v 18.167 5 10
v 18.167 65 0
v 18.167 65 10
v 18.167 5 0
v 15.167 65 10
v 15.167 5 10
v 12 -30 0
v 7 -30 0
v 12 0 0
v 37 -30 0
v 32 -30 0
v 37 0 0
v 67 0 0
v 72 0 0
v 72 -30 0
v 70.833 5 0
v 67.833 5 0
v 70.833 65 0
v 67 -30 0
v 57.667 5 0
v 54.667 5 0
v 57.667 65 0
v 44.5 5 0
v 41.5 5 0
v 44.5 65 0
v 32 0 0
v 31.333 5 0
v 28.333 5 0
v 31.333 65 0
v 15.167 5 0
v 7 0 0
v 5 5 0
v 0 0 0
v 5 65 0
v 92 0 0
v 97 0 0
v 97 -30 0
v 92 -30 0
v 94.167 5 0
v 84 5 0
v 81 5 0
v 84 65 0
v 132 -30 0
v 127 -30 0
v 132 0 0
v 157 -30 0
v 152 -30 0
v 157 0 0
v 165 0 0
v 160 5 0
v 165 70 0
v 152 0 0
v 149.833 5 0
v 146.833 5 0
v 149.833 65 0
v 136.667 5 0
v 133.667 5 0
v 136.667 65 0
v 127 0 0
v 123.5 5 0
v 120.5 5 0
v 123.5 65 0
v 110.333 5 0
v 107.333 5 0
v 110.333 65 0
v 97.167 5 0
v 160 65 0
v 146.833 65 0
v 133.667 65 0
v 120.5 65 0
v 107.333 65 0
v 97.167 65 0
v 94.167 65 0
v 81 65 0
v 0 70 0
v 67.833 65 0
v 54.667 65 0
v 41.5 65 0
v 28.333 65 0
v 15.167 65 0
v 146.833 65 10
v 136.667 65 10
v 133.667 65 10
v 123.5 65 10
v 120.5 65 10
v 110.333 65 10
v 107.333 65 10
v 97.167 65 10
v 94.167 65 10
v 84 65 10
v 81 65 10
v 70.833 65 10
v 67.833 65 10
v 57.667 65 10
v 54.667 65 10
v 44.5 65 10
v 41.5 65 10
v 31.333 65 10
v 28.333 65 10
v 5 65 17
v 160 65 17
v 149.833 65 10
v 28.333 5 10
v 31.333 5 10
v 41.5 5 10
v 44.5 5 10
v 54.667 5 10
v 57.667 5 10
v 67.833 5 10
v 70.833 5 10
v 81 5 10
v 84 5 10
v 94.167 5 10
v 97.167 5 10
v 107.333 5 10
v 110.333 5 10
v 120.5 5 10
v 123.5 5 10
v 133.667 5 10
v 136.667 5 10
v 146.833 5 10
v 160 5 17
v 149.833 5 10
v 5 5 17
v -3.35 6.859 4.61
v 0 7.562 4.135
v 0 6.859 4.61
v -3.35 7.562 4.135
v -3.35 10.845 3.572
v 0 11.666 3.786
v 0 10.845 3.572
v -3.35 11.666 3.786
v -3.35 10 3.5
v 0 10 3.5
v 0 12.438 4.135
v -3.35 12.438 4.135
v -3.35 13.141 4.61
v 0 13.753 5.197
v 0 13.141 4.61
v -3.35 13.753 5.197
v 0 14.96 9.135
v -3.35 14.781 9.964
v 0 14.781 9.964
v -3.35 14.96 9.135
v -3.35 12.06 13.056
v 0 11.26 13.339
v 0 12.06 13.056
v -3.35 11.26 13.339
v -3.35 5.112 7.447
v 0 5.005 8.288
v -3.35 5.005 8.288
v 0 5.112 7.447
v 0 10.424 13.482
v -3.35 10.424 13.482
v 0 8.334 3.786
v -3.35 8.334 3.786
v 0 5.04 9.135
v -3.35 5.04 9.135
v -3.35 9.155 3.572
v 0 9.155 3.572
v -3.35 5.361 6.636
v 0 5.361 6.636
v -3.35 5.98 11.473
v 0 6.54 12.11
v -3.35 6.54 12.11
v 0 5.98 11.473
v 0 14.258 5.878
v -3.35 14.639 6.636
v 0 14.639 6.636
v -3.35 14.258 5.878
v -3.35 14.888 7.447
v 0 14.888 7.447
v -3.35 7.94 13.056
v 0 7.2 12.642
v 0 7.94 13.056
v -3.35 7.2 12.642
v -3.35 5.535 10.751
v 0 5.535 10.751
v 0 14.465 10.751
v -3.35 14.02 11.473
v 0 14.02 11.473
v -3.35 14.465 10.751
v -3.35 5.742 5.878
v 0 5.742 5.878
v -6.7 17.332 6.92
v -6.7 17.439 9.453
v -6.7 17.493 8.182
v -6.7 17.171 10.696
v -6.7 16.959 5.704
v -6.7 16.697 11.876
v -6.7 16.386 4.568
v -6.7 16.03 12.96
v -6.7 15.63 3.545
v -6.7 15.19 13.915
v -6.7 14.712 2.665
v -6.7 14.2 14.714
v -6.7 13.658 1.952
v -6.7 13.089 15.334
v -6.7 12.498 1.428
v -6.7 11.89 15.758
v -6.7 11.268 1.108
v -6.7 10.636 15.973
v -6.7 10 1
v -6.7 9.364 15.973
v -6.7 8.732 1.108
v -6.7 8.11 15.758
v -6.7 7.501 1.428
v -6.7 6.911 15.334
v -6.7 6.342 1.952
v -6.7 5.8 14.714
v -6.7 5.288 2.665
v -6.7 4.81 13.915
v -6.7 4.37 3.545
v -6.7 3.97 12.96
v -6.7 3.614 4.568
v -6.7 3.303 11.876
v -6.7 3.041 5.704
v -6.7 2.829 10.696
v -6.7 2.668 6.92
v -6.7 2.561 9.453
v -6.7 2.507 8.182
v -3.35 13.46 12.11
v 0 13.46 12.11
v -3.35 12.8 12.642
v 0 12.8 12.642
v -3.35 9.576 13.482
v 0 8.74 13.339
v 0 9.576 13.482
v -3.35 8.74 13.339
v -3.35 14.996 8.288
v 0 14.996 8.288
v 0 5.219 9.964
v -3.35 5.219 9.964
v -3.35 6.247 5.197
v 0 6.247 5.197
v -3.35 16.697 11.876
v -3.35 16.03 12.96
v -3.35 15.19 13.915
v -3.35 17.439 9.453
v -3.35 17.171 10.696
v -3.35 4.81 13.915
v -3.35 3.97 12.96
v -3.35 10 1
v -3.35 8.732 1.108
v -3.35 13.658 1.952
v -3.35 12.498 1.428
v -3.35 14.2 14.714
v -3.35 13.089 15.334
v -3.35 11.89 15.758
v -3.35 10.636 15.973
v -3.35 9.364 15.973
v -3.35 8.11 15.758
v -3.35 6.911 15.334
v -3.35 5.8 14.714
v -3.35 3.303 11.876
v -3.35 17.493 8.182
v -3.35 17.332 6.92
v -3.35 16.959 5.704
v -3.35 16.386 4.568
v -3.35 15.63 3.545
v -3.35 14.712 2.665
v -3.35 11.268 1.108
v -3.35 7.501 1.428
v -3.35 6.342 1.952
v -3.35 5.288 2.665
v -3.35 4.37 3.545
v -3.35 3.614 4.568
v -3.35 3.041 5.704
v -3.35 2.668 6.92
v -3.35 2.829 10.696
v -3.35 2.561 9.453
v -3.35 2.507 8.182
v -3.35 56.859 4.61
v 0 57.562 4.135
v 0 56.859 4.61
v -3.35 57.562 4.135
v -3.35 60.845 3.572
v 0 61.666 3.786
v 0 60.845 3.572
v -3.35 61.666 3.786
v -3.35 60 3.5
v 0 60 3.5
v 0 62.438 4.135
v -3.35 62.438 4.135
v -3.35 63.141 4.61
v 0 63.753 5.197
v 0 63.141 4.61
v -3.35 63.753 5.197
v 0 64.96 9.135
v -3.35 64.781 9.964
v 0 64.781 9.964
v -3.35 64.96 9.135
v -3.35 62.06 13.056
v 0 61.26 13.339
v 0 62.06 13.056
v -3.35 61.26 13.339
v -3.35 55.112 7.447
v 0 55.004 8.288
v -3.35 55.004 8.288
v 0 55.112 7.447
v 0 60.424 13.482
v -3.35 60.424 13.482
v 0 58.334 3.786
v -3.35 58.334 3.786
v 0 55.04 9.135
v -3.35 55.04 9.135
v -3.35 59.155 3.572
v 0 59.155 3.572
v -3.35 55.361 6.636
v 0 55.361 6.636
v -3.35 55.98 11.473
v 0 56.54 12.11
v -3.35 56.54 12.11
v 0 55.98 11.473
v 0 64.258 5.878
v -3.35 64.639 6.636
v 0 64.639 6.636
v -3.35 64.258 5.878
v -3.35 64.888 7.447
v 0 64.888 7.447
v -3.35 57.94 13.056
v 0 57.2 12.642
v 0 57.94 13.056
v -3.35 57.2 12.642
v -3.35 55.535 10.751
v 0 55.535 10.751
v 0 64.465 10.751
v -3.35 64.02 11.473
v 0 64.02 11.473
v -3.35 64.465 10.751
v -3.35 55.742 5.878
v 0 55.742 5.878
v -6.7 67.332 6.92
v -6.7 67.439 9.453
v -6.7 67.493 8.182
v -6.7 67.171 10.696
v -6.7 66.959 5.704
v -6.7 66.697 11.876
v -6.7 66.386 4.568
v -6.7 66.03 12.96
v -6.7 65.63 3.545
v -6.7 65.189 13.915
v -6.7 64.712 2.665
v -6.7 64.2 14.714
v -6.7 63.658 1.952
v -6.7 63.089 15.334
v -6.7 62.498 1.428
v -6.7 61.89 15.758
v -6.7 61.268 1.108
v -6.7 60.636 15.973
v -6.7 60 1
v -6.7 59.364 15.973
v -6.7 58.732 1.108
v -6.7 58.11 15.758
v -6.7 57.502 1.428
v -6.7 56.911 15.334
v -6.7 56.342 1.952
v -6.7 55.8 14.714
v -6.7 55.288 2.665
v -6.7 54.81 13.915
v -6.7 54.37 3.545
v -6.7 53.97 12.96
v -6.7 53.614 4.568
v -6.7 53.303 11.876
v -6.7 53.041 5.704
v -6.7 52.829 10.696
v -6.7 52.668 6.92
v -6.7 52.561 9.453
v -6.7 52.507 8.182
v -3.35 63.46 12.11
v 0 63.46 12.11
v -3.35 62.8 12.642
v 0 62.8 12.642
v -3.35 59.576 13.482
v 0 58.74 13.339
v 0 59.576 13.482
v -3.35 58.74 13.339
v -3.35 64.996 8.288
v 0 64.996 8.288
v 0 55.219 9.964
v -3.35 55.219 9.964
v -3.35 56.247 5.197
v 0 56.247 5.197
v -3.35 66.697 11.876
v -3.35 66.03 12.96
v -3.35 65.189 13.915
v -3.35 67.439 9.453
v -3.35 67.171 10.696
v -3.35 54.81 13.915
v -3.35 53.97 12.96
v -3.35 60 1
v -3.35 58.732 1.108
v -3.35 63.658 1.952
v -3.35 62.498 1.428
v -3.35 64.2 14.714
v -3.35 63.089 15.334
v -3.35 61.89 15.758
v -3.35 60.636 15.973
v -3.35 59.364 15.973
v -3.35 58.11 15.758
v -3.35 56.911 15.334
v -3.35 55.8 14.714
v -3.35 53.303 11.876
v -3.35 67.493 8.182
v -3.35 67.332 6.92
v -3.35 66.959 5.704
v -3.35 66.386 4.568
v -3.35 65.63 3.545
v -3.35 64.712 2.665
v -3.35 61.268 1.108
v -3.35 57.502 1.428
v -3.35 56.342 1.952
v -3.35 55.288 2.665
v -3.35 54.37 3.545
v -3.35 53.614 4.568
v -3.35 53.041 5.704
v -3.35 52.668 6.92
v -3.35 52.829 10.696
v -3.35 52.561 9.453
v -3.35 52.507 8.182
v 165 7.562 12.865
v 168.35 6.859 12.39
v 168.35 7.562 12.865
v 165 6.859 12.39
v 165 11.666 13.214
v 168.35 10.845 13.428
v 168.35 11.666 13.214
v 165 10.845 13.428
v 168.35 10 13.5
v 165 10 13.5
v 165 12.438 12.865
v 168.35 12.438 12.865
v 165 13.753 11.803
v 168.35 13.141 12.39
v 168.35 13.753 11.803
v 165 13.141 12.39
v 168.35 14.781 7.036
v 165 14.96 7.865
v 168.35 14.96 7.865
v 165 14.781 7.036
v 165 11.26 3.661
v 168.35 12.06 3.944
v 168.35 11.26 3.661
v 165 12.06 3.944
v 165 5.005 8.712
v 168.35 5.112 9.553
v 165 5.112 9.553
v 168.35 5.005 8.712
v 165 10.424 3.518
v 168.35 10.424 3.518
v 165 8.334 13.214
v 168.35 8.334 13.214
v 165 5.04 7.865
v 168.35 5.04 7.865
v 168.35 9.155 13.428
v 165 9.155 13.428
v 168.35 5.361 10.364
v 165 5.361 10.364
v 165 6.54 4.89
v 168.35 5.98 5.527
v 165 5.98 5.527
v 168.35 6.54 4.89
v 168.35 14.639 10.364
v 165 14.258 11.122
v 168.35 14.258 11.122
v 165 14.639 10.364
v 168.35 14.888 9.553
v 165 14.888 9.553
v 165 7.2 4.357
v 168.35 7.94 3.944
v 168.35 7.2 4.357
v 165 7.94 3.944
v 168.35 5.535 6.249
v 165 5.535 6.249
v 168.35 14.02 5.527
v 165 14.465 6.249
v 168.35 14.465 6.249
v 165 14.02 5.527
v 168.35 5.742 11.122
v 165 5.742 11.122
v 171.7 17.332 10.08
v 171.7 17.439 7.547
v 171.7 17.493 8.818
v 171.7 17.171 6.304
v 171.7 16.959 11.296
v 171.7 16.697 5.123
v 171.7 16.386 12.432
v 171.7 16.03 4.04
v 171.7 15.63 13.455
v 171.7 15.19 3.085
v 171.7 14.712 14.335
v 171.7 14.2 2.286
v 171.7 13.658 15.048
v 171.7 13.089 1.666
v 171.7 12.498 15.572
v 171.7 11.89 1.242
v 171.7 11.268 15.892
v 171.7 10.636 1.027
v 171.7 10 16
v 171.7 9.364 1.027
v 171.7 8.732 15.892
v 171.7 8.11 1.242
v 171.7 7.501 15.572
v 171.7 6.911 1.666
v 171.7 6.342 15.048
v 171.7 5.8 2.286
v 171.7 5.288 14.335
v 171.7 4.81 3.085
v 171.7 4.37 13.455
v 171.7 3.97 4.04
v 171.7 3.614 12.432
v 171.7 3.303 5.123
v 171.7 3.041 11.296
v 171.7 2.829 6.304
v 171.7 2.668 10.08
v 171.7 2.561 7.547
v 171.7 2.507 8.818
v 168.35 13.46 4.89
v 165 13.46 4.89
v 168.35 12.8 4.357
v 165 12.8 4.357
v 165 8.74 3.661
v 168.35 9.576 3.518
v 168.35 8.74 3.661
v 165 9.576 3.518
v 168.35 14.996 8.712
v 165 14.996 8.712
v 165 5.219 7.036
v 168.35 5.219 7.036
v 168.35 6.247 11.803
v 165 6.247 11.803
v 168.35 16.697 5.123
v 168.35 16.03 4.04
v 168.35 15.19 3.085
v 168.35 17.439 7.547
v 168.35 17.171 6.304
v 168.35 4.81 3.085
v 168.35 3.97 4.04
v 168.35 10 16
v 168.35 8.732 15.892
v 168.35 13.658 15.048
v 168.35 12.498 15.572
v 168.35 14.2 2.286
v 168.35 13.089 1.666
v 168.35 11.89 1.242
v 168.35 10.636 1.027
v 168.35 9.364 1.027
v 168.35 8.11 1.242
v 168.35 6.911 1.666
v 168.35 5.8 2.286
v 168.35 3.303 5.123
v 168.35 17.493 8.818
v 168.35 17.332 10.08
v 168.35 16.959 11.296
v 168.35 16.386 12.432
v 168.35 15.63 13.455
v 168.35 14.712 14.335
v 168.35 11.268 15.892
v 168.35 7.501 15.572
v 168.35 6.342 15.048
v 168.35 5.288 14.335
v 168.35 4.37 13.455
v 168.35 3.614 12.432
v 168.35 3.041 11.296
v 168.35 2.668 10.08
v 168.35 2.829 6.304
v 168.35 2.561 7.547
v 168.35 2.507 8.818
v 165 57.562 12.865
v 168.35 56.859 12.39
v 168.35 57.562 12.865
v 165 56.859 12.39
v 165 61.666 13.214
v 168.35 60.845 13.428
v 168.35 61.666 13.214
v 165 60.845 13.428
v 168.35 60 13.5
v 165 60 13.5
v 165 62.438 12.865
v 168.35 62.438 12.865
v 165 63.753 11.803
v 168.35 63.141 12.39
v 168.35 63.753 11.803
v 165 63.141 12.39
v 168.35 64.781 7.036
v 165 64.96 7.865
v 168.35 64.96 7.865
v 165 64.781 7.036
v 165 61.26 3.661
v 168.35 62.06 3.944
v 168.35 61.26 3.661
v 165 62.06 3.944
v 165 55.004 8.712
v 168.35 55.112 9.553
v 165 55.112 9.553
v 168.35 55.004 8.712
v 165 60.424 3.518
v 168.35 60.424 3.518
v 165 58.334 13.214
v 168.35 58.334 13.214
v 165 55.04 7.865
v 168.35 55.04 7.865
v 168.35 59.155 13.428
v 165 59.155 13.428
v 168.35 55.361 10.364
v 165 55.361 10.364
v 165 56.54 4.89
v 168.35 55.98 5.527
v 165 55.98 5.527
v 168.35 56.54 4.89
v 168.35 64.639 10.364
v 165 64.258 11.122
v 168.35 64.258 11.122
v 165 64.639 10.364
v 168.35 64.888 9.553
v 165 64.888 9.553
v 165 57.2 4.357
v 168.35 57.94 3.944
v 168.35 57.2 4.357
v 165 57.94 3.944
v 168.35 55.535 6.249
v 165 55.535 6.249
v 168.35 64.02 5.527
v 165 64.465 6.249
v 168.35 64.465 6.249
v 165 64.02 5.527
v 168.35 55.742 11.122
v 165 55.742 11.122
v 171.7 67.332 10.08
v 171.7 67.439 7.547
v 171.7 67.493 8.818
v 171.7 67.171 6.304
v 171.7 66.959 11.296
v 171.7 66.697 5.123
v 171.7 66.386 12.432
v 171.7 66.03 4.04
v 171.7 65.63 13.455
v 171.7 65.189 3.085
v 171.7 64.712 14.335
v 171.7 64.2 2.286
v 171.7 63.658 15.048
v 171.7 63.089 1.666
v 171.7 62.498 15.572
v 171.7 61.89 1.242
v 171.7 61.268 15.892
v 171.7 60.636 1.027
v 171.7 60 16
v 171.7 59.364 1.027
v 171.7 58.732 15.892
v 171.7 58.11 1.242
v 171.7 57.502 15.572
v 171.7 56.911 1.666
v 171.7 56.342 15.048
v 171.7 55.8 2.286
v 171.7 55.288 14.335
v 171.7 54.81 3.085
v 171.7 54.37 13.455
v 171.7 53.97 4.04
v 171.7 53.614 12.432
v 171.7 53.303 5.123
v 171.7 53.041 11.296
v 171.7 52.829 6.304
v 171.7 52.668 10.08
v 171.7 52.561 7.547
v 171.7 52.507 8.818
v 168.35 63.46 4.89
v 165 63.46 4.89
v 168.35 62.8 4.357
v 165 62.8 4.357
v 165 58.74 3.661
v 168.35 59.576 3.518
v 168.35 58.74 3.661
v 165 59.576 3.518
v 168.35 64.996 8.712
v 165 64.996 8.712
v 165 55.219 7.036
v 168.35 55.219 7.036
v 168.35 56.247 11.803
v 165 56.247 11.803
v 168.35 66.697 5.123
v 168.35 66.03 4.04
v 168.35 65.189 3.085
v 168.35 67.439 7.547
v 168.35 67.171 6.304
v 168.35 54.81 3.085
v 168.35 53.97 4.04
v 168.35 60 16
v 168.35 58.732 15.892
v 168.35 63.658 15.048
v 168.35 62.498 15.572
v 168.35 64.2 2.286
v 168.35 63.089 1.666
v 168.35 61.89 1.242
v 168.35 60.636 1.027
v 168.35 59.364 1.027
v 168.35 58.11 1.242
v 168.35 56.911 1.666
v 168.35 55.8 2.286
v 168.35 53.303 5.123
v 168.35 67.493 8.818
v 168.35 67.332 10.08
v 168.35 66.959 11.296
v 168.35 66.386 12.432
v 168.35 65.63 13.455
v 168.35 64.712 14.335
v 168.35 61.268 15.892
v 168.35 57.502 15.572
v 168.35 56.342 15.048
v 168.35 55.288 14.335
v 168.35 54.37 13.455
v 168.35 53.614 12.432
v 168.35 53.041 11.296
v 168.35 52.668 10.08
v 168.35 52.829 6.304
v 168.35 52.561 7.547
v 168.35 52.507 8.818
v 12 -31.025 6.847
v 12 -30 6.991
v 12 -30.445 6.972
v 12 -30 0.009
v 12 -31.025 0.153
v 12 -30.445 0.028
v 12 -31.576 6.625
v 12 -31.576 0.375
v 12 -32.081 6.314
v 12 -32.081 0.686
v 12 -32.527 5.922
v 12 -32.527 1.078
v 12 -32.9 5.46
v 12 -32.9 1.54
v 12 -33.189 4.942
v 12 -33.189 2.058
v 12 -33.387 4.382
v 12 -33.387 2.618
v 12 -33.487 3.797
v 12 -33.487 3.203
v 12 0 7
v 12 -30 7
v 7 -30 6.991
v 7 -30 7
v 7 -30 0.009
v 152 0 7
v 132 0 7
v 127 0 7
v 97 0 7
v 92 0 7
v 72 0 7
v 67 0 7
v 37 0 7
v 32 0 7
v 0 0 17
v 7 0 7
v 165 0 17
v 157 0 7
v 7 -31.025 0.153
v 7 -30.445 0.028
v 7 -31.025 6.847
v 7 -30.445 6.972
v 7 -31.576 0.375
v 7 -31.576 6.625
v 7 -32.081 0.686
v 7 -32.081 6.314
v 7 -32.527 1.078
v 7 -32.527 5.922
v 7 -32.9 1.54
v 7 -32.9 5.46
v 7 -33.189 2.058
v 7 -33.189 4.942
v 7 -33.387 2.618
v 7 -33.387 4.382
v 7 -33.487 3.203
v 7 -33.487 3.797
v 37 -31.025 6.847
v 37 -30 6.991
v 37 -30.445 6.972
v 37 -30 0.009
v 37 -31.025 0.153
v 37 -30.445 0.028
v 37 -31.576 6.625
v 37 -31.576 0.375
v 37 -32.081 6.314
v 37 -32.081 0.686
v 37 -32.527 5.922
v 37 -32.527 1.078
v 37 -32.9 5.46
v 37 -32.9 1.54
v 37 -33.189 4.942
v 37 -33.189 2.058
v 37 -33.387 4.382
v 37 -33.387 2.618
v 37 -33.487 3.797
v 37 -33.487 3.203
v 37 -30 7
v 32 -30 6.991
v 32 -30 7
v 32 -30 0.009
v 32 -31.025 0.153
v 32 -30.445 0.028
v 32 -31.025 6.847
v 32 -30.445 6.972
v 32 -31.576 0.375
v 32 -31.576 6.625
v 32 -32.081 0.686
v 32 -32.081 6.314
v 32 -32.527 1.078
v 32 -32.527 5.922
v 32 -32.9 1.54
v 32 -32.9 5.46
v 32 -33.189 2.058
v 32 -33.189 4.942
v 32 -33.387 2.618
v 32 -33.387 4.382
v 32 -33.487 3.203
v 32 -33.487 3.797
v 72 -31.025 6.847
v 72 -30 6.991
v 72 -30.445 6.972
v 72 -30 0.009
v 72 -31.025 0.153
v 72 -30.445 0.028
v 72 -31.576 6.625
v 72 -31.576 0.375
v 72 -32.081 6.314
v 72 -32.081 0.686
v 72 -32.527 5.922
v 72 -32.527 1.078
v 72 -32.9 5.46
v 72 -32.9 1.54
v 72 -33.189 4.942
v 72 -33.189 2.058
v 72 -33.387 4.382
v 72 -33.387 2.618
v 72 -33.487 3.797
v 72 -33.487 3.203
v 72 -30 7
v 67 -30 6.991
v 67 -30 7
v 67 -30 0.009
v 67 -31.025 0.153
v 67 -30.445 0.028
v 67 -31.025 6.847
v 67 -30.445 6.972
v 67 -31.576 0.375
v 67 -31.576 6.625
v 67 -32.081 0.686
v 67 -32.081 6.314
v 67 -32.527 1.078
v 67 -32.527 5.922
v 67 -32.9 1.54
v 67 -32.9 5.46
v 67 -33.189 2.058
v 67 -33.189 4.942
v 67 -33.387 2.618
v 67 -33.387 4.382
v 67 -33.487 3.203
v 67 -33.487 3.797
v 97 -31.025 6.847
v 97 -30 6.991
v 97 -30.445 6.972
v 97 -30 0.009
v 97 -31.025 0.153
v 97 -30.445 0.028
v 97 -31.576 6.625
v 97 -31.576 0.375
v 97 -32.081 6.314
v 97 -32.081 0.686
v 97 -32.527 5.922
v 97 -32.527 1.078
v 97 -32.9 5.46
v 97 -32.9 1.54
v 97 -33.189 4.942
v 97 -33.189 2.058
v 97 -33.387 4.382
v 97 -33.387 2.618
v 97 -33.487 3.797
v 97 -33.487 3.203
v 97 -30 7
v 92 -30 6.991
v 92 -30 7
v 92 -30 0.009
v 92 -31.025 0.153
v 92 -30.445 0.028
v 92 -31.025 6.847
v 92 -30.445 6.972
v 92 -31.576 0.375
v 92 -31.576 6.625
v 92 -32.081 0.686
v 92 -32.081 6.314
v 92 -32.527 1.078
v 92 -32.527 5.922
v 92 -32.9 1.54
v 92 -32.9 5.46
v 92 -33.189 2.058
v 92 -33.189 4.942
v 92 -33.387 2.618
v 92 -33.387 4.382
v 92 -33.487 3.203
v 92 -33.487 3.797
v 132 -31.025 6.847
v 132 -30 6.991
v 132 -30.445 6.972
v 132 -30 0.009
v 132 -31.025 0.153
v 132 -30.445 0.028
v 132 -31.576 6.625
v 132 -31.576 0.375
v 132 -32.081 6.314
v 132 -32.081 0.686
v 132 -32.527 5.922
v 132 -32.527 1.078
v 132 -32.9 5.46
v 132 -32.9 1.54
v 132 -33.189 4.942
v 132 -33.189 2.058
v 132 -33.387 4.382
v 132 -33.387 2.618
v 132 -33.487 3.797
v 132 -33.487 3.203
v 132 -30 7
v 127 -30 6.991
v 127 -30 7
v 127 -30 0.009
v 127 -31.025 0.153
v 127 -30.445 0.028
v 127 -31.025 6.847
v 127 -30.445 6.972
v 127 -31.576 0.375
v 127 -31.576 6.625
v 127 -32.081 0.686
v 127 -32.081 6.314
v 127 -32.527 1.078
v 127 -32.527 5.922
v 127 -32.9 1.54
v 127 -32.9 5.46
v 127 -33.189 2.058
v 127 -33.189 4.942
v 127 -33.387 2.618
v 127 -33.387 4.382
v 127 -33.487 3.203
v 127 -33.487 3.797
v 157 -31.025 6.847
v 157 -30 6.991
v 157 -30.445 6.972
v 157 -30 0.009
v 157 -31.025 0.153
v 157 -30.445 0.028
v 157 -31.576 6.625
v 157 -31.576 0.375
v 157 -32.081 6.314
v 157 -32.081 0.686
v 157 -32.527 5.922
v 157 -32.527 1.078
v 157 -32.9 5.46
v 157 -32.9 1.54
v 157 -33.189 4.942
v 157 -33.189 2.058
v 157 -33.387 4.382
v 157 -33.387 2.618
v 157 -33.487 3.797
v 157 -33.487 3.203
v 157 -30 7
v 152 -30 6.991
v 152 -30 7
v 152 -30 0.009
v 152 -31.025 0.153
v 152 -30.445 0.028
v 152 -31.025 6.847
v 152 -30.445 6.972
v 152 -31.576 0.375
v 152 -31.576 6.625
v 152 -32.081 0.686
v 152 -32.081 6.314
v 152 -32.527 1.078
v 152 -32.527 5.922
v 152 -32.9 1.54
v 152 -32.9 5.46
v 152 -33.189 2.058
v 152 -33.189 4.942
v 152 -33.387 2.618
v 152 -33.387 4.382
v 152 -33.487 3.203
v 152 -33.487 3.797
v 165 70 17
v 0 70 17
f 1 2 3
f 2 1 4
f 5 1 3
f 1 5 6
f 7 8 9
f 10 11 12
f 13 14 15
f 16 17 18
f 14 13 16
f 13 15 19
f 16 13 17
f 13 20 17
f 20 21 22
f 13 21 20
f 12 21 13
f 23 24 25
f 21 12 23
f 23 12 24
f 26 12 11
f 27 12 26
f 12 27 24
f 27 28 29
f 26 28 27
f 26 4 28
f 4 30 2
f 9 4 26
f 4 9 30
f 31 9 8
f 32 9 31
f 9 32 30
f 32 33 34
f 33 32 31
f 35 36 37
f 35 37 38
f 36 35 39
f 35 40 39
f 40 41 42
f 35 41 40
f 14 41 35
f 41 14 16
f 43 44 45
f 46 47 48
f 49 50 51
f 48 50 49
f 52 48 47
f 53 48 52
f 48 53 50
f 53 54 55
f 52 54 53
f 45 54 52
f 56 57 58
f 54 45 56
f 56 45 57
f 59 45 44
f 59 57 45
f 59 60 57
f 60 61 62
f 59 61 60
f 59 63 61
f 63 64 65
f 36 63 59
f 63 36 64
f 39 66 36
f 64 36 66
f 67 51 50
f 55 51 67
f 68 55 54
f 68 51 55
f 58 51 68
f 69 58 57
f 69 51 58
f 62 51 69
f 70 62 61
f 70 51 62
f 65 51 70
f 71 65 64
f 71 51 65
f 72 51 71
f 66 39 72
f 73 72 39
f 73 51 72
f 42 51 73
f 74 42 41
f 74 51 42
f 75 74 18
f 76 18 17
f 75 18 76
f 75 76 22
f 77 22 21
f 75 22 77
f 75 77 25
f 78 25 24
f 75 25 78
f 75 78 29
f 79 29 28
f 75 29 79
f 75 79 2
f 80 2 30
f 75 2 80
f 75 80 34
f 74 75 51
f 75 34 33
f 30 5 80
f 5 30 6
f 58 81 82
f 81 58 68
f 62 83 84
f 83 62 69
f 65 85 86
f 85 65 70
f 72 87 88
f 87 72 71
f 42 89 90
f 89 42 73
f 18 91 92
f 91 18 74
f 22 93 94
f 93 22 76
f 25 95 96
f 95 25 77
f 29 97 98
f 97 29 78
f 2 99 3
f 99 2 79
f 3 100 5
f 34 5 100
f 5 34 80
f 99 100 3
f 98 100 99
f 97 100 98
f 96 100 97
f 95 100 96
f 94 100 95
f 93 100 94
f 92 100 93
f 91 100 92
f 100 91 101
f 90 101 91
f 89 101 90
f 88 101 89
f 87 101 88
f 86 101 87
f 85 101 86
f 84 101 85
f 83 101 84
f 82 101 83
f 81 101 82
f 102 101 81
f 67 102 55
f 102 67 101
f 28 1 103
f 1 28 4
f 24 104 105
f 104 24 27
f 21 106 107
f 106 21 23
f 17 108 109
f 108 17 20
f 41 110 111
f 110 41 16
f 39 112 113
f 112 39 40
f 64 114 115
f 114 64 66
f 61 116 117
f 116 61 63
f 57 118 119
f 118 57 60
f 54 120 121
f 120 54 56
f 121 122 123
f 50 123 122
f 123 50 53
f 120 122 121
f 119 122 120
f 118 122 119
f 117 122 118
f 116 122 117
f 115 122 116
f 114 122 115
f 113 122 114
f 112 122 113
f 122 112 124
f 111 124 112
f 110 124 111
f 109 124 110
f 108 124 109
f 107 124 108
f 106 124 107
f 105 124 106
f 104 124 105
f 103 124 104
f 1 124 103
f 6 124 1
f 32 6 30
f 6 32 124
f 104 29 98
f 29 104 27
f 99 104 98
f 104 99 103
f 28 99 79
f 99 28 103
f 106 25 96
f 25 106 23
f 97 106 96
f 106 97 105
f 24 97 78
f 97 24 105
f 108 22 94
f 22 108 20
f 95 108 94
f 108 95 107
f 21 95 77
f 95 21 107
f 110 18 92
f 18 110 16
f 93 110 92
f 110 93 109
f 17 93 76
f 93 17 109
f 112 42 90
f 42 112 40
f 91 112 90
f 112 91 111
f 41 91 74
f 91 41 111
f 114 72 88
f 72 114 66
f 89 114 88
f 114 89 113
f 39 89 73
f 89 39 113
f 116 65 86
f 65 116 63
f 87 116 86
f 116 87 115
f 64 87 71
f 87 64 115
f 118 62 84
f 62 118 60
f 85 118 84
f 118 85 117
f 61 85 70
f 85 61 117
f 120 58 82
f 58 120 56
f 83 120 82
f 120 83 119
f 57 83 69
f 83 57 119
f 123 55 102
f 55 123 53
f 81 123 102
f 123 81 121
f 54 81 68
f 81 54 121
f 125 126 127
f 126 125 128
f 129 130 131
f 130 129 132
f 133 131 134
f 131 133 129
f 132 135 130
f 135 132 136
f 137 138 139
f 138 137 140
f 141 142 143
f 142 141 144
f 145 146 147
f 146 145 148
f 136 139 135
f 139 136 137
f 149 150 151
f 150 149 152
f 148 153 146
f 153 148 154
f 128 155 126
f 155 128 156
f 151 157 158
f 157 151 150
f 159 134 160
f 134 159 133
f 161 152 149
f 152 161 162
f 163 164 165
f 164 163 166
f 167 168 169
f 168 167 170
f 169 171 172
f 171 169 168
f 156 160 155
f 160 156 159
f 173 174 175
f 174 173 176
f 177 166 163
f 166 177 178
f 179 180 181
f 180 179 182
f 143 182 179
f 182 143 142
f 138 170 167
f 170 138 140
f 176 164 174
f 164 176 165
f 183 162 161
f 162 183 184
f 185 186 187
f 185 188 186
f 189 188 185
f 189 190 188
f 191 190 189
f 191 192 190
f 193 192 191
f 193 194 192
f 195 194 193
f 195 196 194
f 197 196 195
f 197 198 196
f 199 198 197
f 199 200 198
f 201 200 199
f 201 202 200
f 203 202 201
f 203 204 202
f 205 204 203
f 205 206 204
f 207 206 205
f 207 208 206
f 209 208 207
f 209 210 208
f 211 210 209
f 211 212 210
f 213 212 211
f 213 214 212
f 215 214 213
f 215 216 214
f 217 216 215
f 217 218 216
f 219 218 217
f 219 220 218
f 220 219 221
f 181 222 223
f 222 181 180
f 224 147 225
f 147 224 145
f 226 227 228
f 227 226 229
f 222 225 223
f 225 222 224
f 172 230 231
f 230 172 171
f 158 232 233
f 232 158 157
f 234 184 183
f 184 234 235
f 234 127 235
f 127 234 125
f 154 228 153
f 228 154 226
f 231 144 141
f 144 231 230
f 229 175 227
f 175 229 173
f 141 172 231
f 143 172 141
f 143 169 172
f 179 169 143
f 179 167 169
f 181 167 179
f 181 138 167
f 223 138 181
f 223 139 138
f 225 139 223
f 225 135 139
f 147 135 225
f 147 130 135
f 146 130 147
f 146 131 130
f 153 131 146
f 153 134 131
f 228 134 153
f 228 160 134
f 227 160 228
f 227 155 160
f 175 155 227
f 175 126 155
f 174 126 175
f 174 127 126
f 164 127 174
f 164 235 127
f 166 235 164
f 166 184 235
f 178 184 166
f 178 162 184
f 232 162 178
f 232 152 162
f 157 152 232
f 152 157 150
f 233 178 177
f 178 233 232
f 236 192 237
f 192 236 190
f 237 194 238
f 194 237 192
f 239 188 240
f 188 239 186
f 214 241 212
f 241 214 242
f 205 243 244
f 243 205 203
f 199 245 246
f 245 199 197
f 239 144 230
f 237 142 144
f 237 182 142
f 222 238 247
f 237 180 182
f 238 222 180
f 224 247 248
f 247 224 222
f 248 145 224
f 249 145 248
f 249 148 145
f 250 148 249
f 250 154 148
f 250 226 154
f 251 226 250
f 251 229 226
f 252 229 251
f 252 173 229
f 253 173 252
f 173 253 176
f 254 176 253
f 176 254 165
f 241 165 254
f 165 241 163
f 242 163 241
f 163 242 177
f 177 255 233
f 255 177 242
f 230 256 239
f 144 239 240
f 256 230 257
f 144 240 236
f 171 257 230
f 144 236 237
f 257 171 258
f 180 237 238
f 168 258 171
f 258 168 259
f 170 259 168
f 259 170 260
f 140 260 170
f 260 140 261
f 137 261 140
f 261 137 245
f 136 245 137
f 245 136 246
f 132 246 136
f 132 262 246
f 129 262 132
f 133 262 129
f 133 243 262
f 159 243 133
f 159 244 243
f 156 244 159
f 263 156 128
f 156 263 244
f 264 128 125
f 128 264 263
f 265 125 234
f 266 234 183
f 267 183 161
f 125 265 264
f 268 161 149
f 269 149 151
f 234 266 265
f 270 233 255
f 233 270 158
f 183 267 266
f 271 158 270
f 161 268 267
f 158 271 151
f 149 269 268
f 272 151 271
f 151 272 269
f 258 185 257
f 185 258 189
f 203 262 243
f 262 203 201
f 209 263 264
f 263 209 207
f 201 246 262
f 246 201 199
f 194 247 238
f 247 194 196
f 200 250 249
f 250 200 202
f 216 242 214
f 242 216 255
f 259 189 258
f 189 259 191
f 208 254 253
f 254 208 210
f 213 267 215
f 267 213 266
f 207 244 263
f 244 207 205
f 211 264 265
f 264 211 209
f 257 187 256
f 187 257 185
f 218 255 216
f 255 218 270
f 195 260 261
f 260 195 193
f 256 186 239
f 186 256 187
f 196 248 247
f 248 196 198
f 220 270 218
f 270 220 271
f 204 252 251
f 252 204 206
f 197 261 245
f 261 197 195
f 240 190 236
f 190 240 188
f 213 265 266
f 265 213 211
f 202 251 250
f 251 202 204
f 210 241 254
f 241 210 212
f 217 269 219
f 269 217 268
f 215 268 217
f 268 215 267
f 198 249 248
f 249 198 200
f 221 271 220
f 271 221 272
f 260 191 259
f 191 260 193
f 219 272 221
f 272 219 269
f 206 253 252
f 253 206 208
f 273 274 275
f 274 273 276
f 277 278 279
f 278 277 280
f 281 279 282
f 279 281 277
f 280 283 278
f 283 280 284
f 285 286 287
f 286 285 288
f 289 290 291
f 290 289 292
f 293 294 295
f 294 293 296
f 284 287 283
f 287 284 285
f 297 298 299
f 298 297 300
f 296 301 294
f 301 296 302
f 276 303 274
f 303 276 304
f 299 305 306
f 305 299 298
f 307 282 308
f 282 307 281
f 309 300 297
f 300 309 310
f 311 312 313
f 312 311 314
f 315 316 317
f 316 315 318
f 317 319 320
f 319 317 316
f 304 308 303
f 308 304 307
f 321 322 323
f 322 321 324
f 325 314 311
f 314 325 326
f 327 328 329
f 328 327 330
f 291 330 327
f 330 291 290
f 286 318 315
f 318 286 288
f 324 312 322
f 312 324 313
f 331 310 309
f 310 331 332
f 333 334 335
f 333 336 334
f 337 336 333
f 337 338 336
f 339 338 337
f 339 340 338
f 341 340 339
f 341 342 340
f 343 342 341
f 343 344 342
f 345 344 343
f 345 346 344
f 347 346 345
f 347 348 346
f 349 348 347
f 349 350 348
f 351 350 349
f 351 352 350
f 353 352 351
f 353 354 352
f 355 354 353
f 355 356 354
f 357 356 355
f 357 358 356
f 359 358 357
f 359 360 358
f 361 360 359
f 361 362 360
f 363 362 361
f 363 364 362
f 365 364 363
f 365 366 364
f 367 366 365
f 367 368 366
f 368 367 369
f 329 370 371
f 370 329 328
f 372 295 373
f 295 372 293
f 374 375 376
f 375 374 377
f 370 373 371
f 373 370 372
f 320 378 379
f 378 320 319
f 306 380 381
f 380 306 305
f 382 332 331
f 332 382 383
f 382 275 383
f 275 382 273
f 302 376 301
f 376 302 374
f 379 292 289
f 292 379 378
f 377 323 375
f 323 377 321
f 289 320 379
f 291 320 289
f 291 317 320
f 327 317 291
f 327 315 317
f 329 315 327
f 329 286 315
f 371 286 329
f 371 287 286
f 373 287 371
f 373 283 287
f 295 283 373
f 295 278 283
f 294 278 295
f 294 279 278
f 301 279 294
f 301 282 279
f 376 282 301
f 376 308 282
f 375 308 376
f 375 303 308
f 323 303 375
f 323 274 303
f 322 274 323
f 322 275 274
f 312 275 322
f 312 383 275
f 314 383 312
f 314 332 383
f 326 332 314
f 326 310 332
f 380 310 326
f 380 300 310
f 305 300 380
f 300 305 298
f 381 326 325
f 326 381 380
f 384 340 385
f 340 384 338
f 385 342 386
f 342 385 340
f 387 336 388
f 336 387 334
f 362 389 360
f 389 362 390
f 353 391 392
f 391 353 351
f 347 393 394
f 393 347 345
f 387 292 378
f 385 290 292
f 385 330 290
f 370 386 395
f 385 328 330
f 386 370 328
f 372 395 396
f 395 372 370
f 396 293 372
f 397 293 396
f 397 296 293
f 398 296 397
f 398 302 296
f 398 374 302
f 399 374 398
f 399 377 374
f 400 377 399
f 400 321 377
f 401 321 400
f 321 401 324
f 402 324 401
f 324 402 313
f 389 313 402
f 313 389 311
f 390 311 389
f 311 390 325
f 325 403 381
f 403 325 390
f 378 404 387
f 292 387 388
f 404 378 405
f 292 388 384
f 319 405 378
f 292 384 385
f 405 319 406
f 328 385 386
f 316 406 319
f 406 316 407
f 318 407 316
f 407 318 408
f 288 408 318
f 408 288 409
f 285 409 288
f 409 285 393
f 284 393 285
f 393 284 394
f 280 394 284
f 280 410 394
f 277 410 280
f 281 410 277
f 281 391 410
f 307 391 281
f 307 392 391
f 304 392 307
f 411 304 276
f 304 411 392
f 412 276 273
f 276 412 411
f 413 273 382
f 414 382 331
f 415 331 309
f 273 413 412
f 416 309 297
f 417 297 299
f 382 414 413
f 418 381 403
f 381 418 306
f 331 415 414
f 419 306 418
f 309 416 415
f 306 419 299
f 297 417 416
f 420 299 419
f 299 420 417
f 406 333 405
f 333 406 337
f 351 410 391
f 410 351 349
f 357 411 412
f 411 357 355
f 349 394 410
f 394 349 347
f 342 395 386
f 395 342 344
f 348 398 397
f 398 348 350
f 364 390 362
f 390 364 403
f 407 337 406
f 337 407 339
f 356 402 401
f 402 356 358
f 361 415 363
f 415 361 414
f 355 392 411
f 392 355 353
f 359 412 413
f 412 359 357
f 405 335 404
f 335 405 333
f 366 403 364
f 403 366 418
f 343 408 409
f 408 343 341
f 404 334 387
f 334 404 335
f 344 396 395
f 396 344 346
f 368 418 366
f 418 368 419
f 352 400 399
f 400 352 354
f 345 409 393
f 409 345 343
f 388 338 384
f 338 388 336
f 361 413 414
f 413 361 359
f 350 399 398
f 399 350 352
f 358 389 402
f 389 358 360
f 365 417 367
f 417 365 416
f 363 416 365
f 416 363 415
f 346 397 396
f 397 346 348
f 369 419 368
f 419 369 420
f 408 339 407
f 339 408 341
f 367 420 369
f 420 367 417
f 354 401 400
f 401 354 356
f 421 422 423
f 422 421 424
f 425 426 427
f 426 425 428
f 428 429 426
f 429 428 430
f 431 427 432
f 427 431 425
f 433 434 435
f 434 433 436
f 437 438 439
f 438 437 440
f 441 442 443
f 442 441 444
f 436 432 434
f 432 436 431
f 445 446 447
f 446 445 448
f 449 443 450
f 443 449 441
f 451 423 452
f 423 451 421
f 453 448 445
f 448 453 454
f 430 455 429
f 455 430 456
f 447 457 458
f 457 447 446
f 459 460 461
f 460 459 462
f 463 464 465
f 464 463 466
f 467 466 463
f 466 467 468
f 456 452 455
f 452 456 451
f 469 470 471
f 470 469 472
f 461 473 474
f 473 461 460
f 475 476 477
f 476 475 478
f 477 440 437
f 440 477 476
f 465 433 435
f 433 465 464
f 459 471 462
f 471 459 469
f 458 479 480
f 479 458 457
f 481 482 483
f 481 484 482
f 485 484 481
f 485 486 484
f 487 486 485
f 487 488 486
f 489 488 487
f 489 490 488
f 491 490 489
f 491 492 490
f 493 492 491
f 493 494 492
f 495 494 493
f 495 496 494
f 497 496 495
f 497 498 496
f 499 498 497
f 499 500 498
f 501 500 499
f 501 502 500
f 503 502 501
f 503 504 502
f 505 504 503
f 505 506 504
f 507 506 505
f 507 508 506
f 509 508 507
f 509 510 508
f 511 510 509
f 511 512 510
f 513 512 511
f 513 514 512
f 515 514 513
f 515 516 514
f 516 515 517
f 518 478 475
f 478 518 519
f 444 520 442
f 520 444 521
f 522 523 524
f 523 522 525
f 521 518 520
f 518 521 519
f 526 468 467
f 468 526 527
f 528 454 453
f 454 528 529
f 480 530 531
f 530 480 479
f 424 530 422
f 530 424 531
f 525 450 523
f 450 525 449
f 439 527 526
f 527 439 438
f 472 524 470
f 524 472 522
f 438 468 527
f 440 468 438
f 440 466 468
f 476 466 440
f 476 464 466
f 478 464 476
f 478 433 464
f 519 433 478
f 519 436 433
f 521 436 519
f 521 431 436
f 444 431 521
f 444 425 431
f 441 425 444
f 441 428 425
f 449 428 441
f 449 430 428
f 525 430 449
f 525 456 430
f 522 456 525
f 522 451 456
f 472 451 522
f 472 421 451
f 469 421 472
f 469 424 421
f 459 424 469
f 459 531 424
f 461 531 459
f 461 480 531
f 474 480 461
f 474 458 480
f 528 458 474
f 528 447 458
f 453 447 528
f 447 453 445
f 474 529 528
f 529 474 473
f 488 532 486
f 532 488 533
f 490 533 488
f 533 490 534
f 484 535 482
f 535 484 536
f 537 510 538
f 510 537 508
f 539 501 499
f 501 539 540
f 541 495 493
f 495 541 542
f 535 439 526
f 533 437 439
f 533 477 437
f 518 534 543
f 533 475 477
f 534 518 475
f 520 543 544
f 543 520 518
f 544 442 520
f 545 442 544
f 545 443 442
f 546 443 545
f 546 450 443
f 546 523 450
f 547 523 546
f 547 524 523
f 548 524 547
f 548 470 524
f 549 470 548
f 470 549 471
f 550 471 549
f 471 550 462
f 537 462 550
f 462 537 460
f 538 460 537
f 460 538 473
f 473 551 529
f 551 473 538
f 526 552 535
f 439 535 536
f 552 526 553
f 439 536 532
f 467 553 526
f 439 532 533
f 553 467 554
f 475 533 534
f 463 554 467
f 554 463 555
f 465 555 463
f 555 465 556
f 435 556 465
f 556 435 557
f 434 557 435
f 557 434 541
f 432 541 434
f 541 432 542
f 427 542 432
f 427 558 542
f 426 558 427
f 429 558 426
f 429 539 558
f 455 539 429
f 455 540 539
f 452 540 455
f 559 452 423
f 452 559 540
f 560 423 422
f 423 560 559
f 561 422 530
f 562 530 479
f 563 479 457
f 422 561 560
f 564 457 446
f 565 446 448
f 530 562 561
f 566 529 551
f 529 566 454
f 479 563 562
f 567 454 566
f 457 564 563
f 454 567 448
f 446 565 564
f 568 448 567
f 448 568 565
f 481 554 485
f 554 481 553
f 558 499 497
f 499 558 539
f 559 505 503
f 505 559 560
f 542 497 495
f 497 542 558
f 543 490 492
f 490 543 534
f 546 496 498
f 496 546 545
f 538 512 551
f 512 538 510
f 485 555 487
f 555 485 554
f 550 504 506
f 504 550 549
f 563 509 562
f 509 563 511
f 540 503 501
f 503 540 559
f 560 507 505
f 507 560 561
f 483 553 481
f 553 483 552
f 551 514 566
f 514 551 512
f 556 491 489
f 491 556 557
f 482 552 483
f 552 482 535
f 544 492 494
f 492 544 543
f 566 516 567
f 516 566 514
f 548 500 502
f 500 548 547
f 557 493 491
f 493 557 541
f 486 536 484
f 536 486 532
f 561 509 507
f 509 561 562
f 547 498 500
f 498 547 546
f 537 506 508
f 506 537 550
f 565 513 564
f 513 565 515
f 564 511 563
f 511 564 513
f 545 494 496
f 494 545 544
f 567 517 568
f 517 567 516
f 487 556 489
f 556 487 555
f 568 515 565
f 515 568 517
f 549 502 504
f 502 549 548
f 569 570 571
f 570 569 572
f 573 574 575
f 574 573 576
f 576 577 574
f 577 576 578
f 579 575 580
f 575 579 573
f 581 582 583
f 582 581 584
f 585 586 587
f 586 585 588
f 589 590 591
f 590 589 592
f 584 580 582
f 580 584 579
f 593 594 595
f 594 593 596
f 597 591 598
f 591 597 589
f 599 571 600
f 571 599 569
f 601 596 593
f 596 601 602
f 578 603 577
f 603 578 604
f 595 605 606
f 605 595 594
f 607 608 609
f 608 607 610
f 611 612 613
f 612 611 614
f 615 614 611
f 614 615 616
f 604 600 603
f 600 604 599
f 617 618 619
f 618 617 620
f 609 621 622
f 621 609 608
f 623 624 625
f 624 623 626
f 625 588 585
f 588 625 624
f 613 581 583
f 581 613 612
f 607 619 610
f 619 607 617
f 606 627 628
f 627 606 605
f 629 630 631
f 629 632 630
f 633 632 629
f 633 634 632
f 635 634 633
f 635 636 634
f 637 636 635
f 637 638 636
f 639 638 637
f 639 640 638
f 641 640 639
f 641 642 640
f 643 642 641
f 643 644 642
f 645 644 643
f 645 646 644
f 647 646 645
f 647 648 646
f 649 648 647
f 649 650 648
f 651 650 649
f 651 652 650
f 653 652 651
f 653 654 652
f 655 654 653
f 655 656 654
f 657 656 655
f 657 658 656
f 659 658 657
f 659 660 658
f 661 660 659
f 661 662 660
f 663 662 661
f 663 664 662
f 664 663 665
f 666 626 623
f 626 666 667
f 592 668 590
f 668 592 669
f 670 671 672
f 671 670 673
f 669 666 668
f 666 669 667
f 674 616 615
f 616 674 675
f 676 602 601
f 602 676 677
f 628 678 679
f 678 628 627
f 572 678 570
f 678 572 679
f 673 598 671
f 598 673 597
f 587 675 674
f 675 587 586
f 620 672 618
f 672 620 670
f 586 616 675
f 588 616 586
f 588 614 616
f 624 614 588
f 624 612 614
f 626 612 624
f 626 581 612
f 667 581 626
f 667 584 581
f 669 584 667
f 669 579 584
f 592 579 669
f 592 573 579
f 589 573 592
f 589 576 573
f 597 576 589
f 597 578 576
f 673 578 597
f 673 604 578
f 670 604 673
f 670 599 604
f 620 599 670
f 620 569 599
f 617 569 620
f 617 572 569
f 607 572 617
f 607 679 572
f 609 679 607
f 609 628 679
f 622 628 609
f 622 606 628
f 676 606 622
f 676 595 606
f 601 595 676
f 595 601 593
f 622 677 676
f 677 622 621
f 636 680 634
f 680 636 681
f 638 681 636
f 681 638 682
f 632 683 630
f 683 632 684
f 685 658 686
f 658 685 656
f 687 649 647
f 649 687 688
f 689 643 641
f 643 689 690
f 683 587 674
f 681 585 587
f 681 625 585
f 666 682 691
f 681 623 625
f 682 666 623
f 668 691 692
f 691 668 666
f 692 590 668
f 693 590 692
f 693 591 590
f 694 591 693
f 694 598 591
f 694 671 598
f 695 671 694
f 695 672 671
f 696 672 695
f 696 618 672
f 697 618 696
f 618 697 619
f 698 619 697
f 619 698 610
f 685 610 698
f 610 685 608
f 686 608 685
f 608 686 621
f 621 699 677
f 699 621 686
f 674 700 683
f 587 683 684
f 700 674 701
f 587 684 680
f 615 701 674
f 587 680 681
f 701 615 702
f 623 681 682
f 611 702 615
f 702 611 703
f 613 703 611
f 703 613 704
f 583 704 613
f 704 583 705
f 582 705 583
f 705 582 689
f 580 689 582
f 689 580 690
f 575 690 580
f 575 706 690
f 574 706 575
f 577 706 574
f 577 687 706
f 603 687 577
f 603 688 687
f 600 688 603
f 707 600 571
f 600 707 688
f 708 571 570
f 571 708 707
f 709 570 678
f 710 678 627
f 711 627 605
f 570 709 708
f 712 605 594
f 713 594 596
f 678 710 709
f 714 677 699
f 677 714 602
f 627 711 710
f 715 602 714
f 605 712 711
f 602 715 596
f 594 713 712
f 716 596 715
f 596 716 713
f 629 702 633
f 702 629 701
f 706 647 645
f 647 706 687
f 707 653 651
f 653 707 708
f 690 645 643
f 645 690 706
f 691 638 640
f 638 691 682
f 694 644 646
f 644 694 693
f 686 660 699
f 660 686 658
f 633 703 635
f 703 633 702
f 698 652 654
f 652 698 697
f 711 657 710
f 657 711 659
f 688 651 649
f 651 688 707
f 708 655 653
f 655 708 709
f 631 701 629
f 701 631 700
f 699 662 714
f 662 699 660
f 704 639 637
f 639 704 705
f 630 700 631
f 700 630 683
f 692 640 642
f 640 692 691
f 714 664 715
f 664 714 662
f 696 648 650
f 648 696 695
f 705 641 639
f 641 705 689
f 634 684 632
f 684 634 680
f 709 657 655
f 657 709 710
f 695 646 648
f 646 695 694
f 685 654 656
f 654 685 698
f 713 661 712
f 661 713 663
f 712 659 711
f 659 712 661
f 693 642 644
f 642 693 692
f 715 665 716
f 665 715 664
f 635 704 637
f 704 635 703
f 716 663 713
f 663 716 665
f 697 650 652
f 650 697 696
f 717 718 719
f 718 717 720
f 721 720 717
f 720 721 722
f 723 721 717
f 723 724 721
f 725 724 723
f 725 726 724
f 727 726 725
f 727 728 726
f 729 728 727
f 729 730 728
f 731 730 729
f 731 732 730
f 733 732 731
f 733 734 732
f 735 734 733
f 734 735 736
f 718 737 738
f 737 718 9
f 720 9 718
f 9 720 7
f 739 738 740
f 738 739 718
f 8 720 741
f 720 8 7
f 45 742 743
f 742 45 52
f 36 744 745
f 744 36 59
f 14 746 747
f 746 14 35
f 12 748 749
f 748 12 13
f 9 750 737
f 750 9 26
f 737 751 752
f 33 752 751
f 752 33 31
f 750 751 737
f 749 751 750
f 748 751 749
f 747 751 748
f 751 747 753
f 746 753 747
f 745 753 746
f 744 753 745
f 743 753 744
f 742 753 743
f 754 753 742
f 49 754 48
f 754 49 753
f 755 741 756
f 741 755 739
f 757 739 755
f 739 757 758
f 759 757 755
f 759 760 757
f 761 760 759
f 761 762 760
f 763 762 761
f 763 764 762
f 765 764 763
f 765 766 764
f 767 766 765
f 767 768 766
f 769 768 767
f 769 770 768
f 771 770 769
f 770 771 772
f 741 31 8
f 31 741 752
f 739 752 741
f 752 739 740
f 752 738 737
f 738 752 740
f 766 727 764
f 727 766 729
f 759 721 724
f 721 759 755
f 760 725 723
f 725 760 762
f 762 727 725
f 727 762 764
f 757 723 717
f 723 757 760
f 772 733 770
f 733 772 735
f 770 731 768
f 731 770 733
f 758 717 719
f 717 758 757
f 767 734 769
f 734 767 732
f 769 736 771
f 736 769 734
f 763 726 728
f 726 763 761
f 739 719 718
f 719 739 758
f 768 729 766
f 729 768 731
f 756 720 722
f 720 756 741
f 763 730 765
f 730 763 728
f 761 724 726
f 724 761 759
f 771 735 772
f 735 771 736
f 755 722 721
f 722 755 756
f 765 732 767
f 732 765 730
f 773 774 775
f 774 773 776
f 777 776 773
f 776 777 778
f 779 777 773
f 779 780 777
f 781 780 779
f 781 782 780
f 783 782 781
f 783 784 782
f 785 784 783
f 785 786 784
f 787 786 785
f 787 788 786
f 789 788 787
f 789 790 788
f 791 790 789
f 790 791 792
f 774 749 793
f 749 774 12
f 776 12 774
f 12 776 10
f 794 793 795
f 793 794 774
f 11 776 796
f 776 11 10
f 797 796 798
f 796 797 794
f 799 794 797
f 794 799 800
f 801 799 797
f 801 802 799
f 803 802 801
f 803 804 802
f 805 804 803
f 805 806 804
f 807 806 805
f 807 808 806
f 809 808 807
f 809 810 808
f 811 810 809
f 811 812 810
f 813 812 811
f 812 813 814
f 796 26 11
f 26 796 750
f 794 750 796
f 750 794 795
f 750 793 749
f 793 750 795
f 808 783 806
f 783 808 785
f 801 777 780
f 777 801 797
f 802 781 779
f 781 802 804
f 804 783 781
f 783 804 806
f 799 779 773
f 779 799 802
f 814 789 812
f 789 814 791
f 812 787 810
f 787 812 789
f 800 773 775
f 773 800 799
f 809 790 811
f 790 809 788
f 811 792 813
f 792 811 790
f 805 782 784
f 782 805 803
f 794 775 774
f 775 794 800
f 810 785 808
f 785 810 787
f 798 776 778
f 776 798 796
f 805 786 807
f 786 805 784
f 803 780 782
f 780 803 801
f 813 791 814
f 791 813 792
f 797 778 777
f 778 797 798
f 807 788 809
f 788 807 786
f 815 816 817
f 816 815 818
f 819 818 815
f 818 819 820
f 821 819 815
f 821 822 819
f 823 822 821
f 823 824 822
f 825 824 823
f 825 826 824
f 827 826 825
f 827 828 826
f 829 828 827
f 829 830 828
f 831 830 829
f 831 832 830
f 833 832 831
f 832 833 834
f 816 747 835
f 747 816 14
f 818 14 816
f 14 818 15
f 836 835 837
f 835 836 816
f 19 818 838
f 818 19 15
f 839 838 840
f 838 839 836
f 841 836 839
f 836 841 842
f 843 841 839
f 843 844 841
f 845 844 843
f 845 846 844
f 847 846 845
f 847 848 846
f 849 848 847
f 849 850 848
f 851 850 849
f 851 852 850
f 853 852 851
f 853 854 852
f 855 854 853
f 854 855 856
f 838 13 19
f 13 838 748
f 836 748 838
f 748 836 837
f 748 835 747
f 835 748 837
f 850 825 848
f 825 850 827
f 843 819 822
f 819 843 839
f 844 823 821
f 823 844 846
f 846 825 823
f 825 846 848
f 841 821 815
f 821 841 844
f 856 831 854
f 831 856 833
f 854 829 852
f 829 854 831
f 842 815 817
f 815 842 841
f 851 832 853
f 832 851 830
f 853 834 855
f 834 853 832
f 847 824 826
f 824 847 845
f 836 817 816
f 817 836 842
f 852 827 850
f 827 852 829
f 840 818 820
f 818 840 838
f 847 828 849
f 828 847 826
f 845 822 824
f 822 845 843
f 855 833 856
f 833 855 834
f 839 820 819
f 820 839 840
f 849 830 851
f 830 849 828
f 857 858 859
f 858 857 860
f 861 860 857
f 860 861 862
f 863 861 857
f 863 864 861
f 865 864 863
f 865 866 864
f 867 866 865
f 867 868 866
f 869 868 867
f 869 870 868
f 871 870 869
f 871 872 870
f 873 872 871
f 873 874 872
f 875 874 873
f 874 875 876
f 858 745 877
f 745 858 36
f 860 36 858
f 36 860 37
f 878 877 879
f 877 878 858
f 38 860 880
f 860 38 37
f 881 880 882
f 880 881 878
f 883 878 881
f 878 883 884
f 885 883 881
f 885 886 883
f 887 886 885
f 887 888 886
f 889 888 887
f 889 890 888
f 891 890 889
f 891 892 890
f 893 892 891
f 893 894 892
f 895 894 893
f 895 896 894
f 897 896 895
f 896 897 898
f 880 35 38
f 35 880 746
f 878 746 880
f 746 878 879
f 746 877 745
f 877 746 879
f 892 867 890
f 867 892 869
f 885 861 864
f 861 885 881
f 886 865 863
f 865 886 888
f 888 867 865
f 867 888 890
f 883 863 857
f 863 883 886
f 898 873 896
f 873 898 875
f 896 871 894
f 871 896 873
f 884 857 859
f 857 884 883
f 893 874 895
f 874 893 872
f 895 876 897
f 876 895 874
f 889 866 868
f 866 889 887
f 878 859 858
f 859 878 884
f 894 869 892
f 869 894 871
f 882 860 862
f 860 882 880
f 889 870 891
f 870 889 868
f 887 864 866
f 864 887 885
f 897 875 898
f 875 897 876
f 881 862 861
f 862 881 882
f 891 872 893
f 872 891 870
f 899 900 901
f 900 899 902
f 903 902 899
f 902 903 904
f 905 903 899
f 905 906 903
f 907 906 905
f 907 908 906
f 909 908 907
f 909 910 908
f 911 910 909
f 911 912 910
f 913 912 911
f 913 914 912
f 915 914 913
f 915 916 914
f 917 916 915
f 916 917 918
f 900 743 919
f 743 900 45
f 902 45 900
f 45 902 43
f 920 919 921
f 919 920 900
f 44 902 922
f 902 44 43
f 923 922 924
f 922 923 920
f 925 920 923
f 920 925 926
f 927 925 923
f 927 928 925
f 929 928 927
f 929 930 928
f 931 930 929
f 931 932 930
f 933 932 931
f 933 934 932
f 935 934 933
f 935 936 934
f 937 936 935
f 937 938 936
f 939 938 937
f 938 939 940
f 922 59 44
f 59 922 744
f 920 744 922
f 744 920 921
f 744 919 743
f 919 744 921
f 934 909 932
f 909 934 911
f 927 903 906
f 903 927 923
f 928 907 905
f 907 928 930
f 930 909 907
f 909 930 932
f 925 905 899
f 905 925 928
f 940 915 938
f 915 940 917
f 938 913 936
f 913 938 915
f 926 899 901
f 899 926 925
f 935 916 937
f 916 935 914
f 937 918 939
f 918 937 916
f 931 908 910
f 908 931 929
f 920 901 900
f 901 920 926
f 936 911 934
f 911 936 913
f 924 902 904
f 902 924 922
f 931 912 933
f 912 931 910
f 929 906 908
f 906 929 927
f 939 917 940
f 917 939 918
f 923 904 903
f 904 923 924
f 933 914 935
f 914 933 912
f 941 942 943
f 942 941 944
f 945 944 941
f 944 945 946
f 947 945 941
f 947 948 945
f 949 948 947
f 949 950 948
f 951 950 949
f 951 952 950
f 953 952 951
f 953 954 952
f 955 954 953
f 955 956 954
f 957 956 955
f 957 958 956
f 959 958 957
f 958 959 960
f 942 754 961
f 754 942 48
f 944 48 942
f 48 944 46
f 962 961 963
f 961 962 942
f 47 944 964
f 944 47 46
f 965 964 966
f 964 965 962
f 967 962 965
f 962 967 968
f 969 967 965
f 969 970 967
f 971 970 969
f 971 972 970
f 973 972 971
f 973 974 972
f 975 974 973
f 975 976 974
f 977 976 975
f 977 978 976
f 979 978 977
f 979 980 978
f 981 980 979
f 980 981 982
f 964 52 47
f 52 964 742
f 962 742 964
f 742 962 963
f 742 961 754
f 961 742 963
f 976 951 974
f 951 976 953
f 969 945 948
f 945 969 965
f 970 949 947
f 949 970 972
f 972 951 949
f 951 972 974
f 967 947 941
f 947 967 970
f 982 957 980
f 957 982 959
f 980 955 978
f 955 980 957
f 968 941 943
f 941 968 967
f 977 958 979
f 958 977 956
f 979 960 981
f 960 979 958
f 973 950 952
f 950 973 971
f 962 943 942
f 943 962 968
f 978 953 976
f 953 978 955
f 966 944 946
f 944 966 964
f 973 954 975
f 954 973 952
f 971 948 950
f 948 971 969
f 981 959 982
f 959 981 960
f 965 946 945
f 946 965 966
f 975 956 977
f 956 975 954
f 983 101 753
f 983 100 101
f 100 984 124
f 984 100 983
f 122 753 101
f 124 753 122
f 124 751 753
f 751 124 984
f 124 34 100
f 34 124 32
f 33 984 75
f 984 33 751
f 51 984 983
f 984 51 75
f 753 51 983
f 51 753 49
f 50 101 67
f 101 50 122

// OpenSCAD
// file: soap_tray.scad
/*
Customizable Soap Tray
Version 1.0
Written by @kenwebart
info@kenweb.art
https://kenweb.art

Please update your settings below.

License: Creative Commons Attribution-NonCommercial-ShareAlike 4.0 International (CC BY-NC-SA 4.0)
https://creativecommons.org/licenses/by-nc-sa/4.0/legalcode

You are free to:
Share — copy and redistribute the material in any medium or format
Adapt — remix, transform, and build upon the material
The licensor cannot revoke these freedoms as long as you follow the license terms.

Under the following terms: Attribution — You must give appropriate
credit, provide a link to the license, and indicate if changes were
made. You may do so in any reasonable manner, but not in any way that
suggests the licensor endorses you or your use.  NonCommercial — You
may not use the material for commercial purposes.  ShareAlike — If you
remix, transform, or build upon the material, you must distribute your
contributions under the same license as the original.  No additional
restrictions — You may not apply legal terms or technological measures
that legally restrict others from doing anything the license permits.

Notices: You do not have to comply with the license for elements of
the material in the public domain or where your use is permitted by an
applicable exception or limitation.  No warranties are given. The
license may not give you all of the permissions necessary for your
intended use. For example, other rights such as publicity, privacy, or
moral rights may limit how you use the material.
*/

/*
Use at your own risk.

THIS SOFTWARE IS PROVIDED BY THE COPYRIGHT HOLDERS AND CONTRIBUTORS "AS IS"
AND ANY EXPRESS OR IMPLIED WARRANTIES, INCLUDING, BUT NOT LIMITED TO,
THE IMPLIED WARRANTIES OF MERCHANTABILITY AND FITNESS FOR A PARTICULAR
PURPOSE ARE DISCLAIMED. IN NO EVENT SHALL THE COPYRIGHT OWNER OR CONTRIBUTORS
BE LIABLE FOR ANY DIRECT, INDIRECT, INCIDENTAL, SPECIAL, EXEMPLARY, OR
CONSEQUENTIAL DAMAGES (INCLUDING, BUT NOT LIMITED TO, PROCUREMENT OF
SUBSTITUTE GOODS OR SERVICES; LOSS OF USE, DATA, OR PROFITS; OR BUSINESS
INTERRUPTION) HOWEVER CAUSED AND ON ANY THEORY OF LIABILITY, WHETHER
IN CONTRACT, STRICT LIABILITY, OR TORT (INCLUDING NEGLIGENCE OR OTHERWISE)
ARISING IN ANY WAY OUT OF THE USE OF THIS SOFTWARE, EVEN IF ADVISED OF THE
POSSIBILITY OF SUCH DAMAGE.
*/


//
// Added mounting pegs for brackets
// E. Hazen - hazen@bu.edu - 2021-07-04
//

//width in mm.
//trayX = 115;			// 115 is good for dial soap
                                // (inside dim ~105)

//trayX = 95;                     // 95 for Face soap
trayX = 165;

//depth in mm.
trayY = 70; 

//height in mm.
trayZ = 10;

//wall thickness in mm.
wallThickness = 5;

//line thickness in mm. 
lineThickness = 3;

//Min. line gap in mm.
lineGap = 10;

//foot in mm.
foot = 0;

//wall in mm.
wall = 7;

//line length
lineLength = trayY-(wallThickness*2);


// module for lines
module line(start, end, height, thickness) {
	color("blue")
	hull() {
		translate(start) linear_extrude(height = height) square(thickness); 
		translate(end) linear_extrude(height = height) square(thickness); 
	}
}

line([0,0], [0,trayY-wallThickness], trayZ+foot+wall, wallThickness);
line([trayX-wallThickness,trayY-wallThickness], [trayX-wallThickness,0], trayZ+foot+wall, wallThickness);
line([0,0], [trayX-wallThickness,0], trayZ+foot+wall, wallThickness);
line([0,trayY-wallThickness], [trayX-wallThickness,trayY-wallThickness], trayZ+foot+wall, wallThickness);

//Calc how many lines possible
countX = floor(((trayX-(wallThickness*2))/(lineThickness+lineGap)));
echo("countX:", countX);
calcGapX = ((trayX-(wallThickness*2))-((lineThickness+lineGap)*countX)+lineGap)/(countX-1);
echo("calcGapX:", calcGapX);

gap = (lineGap+calcGapX)*(countX-1)/(countX+1);
echo("gap:", gap);

// padding = lineThickness+lineGap+calcGapX;
// echo("padding:", padding);

padding = lineThickness+gap;
echo("padding:", padding);


for (i=[0:countX-1]) {
	color("Fuchsia")
	translate([wallThickness+(padding*i),wallThickness,0]) 
	translate([gap,0,foot])        
	cube([lineThickness,lineLength,trayZ]);
}


// add mounting pegs for snap-on brackets

$fn=37;

bracket_thickness = 3.35;	// bracket is 0.125 in (3.2mm) thick
peg_diam = 10;

module peg() {
     rotate( [0, 90, 0]) {
	  cylinder( h=bracket_thickness*2, d=peg_diam);
	  cylinder( h=bracket_thickness, d=peg_diam+5);
     }
}

module pegs() {
     translate( [-bracket_thickness*2, 10, (trayZ+foot+wall)/2]) {
	  peg();
	  translate( [0, trayY-20, 0])
	       peg();
     }
}

pegs();
translate( [trayX, 0, trayZ+foot+wall])
rotate( [0, 180, 0])
pegs();
// main file
//
// soap tray with razor rack
//

include <soap_tray.scad>

// (all dim in mm)
head_wid = 55;
head_hgt = 25;
head_dep = 10;

handle_hgt = 127;
handle_wid = 17;

module razor_plan() {
        polygon( points = [ [0,0] ,
        		    [-handle_wid/2, 0],
        		    [-6, -34],
        		    [-12, -102],
        		    [-5, -127],
        		    [5, -127],
        		    [12, -102],
        		    [6, -34],
        		    [handle_wid/2, 0],
        		    [0,0] ]);
}     

module razor() {
     color("teal") {
     translate( [-head_wid/2, -head_hgt/2, -5])
	  rotate( [25, 0, 0])
	  cube( [head_wid, head_hgt, head_dep]);
     translate( [0, -head_hgt/2, 0])
          linear_extrude( height = 10) { razor_plan(); }
     }
}


rack_len = 30;

module rack() {
     union() {
	  cube( [5, 7, rack_len]);
	  translate( [0, 3.5, rack_len])
	  rotate( [0, 90, 0])
	  cylinder( h=5, d=7);
     }
}
     

rotate( [ 90, 0, 0]) {
     translate( [ 22, 25, 0])
     for( i=[0:2]) {
	  translate( [i*60, 0, 0]) {
//	       translate( [0, 0, 8]) razor();
	       translate( [-15, -25, 0]) {
		    rack();
		    translate( [25, 0, 0])
			 rack();
	       }
	  }
     }
}
